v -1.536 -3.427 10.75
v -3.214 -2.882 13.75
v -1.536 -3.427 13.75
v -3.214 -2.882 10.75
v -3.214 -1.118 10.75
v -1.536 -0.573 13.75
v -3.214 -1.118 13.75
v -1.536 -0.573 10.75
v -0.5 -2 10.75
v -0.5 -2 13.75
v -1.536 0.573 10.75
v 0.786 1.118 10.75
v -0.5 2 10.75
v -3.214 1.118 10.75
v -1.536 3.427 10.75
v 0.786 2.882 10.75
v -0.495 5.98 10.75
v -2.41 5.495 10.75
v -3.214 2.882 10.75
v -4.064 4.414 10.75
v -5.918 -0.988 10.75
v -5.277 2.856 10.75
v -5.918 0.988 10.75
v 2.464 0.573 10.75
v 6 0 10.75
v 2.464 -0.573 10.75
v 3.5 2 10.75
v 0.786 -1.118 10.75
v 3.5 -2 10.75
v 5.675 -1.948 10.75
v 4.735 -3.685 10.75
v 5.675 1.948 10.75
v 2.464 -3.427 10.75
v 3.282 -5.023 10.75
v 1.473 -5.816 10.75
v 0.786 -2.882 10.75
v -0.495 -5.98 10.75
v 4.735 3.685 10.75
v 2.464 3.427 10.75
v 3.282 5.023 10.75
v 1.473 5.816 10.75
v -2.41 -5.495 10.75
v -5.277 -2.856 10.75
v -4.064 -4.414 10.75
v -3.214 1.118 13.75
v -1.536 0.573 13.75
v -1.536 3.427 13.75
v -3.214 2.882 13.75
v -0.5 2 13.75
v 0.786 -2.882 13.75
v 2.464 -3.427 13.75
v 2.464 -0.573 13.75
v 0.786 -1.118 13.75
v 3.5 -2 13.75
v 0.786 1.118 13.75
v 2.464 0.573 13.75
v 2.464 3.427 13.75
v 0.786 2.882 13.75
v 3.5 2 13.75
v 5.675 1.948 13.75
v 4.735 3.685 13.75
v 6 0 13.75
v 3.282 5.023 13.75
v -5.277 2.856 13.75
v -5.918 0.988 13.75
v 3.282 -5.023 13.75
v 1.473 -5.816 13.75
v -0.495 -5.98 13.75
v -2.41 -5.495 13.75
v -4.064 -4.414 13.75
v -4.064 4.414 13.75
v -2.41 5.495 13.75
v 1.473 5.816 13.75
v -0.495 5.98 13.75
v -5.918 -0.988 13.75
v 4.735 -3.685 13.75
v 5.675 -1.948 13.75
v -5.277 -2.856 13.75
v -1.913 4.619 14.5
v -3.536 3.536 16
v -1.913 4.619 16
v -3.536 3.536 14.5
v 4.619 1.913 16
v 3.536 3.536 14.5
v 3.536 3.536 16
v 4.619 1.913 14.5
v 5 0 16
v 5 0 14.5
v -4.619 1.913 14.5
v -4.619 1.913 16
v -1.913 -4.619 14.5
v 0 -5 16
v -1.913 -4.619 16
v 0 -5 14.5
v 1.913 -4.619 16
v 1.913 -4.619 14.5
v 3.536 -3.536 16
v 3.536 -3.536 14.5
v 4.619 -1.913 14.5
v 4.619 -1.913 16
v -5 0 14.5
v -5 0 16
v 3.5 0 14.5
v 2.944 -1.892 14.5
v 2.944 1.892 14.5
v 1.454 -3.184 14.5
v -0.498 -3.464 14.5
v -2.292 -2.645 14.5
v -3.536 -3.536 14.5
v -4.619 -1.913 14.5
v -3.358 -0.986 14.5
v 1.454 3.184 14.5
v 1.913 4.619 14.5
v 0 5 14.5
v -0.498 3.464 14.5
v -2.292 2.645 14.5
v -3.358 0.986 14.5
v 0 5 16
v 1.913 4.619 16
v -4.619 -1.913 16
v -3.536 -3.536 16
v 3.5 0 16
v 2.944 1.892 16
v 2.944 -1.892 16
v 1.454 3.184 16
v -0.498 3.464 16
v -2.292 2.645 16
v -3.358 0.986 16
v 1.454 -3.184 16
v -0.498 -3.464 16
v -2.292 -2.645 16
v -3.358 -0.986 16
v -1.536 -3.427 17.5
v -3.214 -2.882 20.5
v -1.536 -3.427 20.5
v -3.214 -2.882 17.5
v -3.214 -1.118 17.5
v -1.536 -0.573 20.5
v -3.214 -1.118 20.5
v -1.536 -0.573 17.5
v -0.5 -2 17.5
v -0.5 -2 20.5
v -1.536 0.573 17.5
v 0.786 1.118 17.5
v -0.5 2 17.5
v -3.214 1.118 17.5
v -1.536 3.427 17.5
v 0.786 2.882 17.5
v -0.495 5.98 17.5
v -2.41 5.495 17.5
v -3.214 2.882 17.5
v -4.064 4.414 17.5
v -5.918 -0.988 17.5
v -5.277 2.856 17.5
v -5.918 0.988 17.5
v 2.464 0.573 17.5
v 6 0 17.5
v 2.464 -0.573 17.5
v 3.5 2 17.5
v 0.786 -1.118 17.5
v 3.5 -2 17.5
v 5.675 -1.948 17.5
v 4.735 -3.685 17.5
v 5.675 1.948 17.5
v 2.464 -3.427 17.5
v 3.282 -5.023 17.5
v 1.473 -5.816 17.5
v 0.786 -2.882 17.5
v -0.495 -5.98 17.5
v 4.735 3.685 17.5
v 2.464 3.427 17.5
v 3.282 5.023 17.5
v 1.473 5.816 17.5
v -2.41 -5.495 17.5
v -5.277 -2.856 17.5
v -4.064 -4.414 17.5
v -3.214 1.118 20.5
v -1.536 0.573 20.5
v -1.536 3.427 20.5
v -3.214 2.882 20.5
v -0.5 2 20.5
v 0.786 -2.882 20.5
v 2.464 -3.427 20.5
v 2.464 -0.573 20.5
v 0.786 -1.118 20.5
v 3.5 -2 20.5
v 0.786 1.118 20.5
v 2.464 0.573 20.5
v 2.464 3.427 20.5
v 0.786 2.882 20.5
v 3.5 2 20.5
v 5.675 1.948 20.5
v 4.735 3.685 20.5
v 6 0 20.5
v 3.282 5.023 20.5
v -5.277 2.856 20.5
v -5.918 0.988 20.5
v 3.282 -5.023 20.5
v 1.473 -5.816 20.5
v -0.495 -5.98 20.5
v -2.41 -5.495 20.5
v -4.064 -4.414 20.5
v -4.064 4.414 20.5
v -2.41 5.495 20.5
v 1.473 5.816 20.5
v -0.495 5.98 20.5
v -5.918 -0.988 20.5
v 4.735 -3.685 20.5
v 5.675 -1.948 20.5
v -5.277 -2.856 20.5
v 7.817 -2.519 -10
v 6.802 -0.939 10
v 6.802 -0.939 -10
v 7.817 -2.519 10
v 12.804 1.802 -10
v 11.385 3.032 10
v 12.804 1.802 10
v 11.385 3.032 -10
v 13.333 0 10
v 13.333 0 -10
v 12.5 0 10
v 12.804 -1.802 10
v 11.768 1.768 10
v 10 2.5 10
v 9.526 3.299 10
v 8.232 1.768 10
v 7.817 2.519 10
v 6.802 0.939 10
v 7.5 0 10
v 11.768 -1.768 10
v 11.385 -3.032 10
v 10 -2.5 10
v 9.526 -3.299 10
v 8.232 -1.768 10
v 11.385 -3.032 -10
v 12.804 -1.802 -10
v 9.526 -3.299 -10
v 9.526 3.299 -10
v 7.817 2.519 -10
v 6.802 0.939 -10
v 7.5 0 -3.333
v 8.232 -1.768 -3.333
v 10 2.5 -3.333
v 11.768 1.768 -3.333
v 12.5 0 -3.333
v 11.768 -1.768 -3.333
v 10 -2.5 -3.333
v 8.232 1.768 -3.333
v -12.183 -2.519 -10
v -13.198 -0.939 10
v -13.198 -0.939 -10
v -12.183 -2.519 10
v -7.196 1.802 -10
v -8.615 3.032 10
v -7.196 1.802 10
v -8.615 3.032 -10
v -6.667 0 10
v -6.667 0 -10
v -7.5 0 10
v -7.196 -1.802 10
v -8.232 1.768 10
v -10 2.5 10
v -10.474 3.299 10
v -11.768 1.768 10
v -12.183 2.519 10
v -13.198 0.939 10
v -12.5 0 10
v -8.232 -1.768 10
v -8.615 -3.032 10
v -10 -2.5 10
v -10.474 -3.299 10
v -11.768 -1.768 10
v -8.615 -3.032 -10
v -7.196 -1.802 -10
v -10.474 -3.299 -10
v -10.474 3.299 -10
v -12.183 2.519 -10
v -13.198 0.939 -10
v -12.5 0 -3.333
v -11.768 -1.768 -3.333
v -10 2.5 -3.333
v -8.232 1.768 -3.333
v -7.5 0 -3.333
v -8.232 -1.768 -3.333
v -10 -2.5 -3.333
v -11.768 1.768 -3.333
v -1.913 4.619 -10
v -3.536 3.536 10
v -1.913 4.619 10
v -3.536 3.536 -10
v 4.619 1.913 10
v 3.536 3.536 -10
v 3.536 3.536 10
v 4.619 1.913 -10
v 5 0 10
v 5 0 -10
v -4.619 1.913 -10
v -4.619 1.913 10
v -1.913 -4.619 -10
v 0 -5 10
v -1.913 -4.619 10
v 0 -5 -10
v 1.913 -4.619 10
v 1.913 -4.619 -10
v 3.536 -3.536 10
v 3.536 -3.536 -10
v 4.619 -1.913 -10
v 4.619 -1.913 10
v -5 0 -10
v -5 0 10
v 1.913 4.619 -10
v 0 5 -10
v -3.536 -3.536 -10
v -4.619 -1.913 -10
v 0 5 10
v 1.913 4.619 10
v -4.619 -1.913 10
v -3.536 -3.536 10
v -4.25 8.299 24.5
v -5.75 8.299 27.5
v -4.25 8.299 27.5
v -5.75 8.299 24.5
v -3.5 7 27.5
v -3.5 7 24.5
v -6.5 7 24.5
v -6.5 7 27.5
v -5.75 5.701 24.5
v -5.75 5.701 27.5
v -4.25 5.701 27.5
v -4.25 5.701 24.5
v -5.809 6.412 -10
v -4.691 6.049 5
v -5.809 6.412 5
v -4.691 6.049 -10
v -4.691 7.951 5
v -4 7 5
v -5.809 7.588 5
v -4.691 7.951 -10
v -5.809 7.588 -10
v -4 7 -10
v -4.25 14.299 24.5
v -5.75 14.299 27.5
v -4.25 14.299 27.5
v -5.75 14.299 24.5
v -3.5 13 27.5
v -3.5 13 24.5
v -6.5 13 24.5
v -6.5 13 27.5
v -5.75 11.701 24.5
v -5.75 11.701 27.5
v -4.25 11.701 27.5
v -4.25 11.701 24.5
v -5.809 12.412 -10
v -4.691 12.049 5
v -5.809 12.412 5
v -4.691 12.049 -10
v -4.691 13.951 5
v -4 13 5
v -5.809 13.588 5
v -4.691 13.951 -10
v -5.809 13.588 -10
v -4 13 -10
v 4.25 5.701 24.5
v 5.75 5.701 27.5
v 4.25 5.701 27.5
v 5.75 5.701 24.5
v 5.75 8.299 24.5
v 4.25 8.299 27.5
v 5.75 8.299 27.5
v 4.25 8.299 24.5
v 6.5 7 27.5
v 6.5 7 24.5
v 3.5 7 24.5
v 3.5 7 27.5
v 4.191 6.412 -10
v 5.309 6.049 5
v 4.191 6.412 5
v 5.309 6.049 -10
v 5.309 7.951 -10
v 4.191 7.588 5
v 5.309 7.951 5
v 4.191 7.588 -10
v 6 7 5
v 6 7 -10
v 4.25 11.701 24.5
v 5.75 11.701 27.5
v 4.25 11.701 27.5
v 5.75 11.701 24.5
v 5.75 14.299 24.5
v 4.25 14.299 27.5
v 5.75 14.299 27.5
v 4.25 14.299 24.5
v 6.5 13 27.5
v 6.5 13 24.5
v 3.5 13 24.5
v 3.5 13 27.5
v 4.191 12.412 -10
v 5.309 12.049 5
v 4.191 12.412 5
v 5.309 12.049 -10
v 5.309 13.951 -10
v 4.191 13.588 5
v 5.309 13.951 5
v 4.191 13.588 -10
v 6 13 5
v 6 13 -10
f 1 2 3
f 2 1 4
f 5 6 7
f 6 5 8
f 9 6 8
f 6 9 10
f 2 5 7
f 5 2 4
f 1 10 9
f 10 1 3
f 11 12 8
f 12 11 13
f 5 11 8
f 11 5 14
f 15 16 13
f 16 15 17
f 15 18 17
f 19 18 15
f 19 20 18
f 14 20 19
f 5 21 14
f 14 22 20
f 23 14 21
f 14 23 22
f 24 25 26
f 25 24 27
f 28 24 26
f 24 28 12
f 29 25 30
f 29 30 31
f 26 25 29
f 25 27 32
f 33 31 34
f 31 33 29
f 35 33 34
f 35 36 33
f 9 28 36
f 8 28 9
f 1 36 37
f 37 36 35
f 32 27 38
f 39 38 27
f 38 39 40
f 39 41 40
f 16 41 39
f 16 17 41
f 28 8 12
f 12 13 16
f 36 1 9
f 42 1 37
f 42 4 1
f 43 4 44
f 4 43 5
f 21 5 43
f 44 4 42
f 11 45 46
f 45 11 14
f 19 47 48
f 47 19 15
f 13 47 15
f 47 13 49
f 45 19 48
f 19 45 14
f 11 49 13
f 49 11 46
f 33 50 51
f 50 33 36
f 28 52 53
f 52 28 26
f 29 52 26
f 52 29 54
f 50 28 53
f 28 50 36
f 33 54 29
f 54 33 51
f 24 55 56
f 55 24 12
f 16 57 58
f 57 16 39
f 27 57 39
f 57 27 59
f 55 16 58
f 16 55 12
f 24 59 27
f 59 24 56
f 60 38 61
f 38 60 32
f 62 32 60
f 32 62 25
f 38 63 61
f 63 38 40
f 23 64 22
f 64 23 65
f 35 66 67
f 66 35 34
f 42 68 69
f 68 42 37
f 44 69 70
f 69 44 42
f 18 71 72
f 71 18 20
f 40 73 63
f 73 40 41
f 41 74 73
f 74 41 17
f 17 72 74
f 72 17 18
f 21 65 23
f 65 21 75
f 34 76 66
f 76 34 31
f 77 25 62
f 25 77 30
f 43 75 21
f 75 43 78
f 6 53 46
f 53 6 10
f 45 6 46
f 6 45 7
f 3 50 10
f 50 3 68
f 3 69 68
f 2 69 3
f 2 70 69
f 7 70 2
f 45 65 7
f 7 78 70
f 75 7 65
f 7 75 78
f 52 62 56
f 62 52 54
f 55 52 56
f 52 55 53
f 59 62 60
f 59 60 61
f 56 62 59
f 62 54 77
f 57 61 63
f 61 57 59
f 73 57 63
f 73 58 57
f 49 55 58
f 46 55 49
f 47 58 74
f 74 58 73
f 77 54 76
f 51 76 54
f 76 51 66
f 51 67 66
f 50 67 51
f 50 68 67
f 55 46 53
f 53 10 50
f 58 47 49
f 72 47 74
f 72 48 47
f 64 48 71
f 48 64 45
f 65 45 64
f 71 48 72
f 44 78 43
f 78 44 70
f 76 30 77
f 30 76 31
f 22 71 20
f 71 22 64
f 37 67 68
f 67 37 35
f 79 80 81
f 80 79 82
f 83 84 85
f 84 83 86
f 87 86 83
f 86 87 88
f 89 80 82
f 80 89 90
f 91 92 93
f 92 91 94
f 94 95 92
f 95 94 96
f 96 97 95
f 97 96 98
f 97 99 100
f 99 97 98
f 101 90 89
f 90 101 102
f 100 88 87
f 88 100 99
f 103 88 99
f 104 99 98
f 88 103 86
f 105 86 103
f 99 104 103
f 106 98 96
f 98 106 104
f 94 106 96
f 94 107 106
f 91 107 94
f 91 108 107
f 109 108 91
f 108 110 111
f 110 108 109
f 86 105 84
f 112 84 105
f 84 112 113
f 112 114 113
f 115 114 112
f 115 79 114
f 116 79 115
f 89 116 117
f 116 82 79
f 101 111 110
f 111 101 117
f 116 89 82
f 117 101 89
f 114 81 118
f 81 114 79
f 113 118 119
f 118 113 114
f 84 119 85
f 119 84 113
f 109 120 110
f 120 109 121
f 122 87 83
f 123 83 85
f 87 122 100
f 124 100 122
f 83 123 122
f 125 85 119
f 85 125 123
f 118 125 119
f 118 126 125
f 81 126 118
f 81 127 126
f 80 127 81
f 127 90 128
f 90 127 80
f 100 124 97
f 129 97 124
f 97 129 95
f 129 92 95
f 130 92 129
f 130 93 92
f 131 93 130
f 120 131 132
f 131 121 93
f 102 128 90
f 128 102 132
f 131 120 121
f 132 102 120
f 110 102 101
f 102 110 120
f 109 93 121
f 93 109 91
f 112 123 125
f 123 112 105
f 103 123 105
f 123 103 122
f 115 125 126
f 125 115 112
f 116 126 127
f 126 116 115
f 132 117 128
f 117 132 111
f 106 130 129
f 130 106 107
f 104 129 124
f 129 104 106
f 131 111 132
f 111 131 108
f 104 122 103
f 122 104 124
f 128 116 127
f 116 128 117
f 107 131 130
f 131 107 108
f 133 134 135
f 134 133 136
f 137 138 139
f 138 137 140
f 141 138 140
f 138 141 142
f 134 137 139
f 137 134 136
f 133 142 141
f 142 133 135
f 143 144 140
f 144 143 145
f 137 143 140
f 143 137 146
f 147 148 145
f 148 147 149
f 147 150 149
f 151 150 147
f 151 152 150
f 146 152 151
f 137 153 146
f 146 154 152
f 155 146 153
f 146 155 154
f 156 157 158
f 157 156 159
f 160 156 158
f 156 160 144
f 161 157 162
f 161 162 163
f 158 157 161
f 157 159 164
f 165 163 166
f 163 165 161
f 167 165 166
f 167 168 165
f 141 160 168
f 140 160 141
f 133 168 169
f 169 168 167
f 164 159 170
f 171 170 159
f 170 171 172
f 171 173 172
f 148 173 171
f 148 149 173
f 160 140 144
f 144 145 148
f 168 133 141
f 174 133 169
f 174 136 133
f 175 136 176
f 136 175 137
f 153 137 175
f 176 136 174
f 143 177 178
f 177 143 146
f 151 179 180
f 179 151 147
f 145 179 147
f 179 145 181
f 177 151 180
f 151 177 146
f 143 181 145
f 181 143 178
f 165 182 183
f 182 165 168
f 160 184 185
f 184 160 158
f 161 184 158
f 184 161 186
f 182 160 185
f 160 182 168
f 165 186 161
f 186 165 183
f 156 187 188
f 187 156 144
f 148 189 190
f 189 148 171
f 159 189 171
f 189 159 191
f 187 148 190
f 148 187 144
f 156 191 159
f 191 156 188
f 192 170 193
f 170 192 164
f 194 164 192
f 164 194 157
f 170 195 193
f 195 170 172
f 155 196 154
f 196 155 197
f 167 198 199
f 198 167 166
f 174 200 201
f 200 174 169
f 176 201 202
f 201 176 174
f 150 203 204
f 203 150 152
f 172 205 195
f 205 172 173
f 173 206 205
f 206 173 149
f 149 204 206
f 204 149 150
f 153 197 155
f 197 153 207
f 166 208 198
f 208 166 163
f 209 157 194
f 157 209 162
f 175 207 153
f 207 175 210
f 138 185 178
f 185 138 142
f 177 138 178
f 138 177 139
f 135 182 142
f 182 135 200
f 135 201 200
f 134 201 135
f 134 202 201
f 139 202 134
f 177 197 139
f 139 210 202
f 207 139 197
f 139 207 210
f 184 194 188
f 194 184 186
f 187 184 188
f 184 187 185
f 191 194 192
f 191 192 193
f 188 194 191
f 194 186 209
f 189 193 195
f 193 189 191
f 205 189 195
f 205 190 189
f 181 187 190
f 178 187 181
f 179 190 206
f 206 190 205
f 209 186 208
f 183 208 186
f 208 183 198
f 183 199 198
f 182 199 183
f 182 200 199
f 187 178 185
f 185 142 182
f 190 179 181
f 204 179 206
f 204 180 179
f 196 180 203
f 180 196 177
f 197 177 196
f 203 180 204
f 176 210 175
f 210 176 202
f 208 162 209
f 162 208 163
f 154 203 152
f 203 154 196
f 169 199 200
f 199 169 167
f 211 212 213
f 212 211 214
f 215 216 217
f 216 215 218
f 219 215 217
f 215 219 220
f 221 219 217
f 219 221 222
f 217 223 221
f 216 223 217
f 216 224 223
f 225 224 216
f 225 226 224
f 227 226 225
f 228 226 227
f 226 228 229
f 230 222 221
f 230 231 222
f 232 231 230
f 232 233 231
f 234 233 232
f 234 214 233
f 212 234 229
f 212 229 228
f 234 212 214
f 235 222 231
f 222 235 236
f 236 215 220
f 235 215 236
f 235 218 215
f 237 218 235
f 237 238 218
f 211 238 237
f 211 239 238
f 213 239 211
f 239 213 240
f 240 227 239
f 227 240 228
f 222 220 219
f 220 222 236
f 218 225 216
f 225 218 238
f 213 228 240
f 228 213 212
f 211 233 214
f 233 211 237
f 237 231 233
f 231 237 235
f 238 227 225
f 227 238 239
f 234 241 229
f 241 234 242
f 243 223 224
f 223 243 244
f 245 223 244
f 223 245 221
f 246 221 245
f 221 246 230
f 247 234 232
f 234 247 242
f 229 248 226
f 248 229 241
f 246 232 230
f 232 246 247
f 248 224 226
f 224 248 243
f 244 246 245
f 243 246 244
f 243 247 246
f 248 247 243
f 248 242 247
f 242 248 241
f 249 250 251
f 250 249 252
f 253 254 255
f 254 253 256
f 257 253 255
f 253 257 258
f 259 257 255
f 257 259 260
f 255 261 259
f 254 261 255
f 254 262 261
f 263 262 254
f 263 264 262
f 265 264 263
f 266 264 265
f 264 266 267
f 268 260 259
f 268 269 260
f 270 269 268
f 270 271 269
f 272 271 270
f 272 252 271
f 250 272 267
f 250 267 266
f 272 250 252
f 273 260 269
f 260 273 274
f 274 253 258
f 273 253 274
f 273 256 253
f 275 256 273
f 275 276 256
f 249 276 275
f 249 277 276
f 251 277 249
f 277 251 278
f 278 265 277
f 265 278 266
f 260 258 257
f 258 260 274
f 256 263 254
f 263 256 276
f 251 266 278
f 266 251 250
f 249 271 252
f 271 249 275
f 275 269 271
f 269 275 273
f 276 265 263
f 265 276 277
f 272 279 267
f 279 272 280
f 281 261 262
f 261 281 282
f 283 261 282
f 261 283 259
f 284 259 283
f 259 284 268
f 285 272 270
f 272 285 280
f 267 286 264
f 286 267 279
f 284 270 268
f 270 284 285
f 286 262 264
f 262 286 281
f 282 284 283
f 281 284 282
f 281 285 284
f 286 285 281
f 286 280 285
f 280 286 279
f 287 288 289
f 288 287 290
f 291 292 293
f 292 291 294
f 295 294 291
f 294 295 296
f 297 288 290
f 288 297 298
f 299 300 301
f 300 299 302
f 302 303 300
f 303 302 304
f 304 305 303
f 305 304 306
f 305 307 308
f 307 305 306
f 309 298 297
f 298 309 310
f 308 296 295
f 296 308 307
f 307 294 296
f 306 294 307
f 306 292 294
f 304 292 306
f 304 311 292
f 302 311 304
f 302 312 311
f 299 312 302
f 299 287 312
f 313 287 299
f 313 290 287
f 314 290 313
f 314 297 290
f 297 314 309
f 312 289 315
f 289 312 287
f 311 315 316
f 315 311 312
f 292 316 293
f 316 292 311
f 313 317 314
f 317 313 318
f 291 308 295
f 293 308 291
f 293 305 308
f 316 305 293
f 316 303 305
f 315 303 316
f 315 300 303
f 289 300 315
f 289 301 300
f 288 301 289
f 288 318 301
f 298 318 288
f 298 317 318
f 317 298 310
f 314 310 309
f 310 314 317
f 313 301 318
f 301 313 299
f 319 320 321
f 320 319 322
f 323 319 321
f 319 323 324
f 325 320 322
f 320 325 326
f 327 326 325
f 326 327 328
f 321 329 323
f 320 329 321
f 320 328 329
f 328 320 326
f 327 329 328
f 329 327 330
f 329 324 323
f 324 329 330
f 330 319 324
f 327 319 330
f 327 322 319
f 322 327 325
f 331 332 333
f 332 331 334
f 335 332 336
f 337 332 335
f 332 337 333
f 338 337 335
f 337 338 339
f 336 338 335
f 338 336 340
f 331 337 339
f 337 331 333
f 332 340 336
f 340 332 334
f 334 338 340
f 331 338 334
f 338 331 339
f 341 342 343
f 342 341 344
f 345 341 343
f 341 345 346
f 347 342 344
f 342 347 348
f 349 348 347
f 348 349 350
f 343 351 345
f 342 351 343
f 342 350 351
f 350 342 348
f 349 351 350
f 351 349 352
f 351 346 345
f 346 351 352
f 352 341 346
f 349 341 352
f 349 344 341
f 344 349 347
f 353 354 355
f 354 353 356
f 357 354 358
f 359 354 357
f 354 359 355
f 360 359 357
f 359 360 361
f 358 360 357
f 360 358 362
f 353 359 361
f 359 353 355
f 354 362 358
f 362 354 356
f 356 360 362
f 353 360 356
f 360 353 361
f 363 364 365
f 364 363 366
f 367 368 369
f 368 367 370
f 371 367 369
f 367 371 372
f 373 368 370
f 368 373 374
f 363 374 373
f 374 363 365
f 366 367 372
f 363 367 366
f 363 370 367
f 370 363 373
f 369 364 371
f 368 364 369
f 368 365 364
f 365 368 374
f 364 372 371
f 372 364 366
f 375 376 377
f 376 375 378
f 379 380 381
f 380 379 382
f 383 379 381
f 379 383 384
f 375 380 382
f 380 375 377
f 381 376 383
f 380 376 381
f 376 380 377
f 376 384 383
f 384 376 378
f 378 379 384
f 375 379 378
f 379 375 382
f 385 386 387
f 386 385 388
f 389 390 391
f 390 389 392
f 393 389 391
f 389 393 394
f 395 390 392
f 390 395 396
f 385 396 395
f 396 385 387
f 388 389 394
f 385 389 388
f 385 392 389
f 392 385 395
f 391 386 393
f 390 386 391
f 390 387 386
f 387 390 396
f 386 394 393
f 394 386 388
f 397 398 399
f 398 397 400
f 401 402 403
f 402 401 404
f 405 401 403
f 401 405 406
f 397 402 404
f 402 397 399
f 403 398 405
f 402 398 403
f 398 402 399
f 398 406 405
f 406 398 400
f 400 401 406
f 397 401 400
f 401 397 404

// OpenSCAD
// Basic dimensions
shaft_diameter = 10;
shaft_length = 20;
spacer_thickness = 1.5; // Adjusted thickness for better fitting
flange_thickness = 3;
flange_diameter = 12;
nut_size = 3;
bolt_length = 15;
bolt_diameter = 2;

module central_shaft() {
    // Ensure the central shaft is clearly defined and positioned centrally.
    translate([0, 0, -shaft_length / 2])
        cylinder(h=shaft_length, d=shaft_diameter);
}

module input_shaft() {
    // Define the input shaft with an extension for proper alignment.
    translate([shaft_diameter, 0, -shaft_length / 2])
        difference() {
            cylinder(h=shaft_length, d=shaft_diameter / 1.5); // Adjusted for clear output
            translate([0, 0, shaft_length / 3])
                cylinder(h=shaft_length, d=shaft_diameter / 2);
        }
}

module output_shaft() {
    // Adjust the output shaft to match the original cylindrical, hollow shape.
    translate([-shaft_diameter, 0, -shaft_length / 2])
        difference() {
            cylinder(h=shaft_length, d=shaft_diameter / 1.5); // Adjusted for hollow shape
            translate([0, 0, shaft_length / 3])
                cylinder(h=shaft_length, d=shaft_diameter / 2);
        }
}

module spacer_ring() {
    // Thin, circular spacer ring added between components.
    difference() {
        cylinder(h=spacer_thickness, d=shaft_diameter);
        translate([0, 0, -0.1]) // Slightly adjusted for precise separation
            cylinder(h=spacer_thickness + 0.2, d=shaft_diameter - 3);
    }
}

module flange_plate() {
    // Ensure flange plates are uniformly cylindrical with drilled holes.
    difference() {
        cylinder(h=flange_thickness, d=flange_diameter);
        for (x = [-bolt_diameter, bolt_diameter])
            for (y = [-bolt_diameter, bolt_diameter])
                translate([x, y, 0])
                    cylinder(h=flange_thickness + 1, d=nut_size);
    }
}

module hexagonal_nut() {
    // Position hex nuts for effective fastening.
    cylinder(h=nut_size, d=nut_size, $fn=6);
}

module bolt() {
    // Insert bolts into nuts similarly to the original model.
    cylinder(h=bolt_length, d=bolt_diameter);
}

module translated_components() {
    // Assemble components
    central_shaft();
    translate([0, 0, shaft_length / 2 + spacer_thickness / 2])
        flange_plate();
    translate([0, 0, shaft_length / 2 + spacer_thickness + flange_thickness])
        spacer_ring();
    translate([0, 0, shaft_length / 2 + spacer_thickness + flange_thickness + flange_thickness])
        flange_plate();
    input_shaft();
    output_shaft();
}

translated_components();

// Assemble nuts and bolts 
for (i = [-shaft_diameter / 2, shaft_diameter / 2]) {
    for (j = [shaft_length / 2 - nut_size, shaft_length / 2 + nut_size]) {
        translate([i, j, shaft_length + spacer_thickness + flange_thickness])
            hexagonal_nut();
        translate([i, j, -shaft_length / 2])
            bolt();
    }
}
